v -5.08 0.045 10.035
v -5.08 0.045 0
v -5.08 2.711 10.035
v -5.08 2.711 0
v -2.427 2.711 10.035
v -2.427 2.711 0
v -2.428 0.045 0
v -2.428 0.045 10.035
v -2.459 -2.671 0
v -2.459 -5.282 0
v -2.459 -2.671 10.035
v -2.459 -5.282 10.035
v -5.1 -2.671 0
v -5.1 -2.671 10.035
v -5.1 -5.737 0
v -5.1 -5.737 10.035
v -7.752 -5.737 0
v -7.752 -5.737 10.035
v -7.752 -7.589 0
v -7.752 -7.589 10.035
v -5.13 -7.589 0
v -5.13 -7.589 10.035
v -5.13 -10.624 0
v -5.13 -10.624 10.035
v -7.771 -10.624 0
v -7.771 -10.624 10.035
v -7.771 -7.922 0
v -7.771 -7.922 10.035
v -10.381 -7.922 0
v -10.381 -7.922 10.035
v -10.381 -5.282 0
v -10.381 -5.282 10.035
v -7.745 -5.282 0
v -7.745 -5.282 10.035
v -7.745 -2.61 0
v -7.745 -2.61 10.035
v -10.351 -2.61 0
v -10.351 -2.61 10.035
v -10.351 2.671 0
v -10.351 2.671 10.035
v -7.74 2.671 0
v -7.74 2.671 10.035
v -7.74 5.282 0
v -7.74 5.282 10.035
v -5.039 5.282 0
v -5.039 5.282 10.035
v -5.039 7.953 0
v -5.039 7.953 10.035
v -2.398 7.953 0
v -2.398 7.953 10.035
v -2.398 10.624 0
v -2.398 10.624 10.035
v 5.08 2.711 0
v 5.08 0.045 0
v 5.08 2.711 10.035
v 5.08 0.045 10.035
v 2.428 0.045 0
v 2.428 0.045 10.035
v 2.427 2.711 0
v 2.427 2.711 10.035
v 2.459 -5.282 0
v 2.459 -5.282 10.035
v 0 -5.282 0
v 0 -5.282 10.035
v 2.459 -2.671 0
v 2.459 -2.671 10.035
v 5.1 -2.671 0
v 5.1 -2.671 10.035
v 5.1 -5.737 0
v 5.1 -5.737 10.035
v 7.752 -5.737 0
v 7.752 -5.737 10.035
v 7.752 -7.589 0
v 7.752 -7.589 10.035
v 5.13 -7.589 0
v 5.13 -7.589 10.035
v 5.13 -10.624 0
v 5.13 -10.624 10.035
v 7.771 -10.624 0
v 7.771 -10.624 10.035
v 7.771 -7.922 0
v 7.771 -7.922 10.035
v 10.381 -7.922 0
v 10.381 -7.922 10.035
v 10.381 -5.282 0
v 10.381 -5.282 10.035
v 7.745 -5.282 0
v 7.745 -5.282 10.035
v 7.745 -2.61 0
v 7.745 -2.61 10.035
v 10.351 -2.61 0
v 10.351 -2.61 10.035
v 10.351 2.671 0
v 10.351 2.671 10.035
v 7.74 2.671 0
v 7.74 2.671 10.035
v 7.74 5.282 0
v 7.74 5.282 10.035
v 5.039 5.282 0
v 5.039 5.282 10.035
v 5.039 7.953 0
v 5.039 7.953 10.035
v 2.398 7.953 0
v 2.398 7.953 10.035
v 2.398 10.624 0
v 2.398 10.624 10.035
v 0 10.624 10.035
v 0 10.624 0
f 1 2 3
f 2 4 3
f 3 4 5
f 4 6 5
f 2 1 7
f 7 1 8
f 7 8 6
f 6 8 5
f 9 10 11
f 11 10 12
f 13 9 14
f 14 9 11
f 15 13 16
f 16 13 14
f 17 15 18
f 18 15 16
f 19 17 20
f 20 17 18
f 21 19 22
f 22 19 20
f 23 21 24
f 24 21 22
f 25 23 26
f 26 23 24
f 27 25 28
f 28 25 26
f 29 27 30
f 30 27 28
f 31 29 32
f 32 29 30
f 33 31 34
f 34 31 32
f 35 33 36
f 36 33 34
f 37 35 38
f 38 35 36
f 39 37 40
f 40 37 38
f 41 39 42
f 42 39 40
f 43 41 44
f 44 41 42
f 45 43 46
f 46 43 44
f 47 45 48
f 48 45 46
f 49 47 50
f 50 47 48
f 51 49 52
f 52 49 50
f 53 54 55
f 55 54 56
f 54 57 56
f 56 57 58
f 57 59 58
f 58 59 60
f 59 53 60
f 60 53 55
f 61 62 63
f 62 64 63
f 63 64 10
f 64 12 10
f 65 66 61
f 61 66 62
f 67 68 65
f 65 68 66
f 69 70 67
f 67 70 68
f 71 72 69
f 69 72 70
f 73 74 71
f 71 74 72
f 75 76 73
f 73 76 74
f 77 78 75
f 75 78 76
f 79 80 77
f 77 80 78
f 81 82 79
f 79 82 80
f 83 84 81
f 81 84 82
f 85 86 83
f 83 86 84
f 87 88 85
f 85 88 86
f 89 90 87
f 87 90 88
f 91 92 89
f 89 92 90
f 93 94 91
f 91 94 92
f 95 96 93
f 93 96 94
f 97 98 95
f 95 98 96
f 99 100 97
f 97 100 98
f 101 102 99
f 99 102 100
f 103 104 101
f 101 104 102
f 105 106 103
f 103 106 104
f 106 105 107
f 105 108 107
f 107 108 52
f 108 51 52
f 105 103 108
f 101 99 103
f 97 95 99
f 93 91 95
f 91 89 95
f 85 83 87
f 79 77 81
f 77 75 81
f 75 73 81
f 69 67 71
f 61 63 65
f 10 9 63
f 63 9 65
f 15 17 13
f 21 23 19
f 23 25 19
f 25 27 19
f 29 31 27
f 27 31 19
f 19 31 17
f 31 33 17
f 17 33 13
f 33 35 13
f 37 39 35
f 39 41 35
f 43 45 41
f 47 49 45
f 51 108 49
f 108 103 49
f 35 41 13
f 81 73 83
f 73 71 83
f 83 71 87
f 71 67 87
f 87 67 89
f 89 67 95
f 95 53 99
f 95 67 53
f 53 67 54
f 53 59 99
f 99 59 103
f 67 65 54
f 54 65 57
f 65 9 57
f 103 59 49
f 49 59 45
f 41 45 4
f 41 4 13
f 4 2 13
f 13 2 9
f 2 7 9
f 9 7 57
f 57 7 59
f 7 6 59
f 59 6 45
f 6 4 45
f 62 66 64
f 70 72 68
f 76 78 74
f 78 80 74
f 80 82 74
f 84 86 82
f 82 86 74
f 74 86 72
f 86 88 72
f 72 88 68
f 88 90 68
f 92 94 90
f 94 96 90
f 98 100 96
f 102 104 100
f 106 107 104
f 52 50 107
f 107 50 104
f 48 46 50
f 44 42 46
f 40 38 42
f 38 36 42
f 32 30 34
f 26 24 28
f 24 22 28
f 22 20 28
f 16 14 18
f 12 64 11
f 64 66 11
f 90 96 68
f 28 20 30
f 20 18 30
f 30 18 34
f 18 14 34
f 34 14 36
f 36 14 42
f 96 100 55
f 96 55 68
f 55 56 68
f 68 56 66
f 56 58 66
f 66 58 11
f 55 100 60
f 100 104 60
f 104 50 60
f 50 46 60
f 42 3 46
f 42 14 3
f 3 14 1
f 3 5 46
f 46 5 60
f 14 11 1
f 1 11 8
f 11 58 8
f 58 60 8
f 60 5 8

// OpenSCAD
module invaders_v2_1() 
{
	polyhedron(
		points=[
			[-5.08036, 0.0450995, 10.03545],
			[-5.08036, 0.0450995, 1.049042e-05],
			[-5.08036, 2.710617, 10.03545],
			[-5.08036, 0.0450995, 1.049042e-05],
			[-5.08036, 2.710617, 1.049042e-05],
			[-5.08036, 2.710617, 10.03545],
			[-5.08036, 2.710617, 10.03545],
			[-5.08036, 2.710617, 1.049042e-05],
			[-2.426634, 2.710617, 10.03545],
			[-5.08036, 2.710617, 1.049042e-05],
			[-2.426634, 2.710617, 0.0],
			[-2.426634, 2.710617, 10.03545],
			[-5.08036, 0.0450995, 1.049042e-05],
			[-5.08036, 0.0450995, 10.03545],
			[-2.427733, 0.0450995, 1.049042e-05],
			[-2.427733, 0.0450995, 1.049042e-05],
			[-5.08036, 0.0450995, 10.03545],
			[-2.427733, 0.0450995, 10.03545],
			[-2.427733, 0.0450995, 1.049042e-05],
			[-2.427733, 0.0450995, 10.03545],
			[-2.426634, 2.710617, 0.0],
			[-2.426634, 2.710617, 0.0],
			[-2.427733, 0.0450995, 10.03545],
			[-2.426634, 2.710617, 10.03545],
			[-2.458702, -2.67118, 5.245209e-06],
			[-2.458702, -5.281656, 5.245209e-06],
			[-2.458702, -2.67118, 10.03545],
			[-2.458702, -2.67118, 10.03545],
			[-2.458702, -5.281656, 5.245209e-06],
			[-2.458702, -5.281656, 10.03545],
			[-5.099529, -2.67118, 5.245209e-06],
			[-2.458702, -2.67118, 5.245209e-06],
			[-5.099529, -2.67118, 10.03545],
			[-5.099529, -2.67118, 10.03545],
			[-2.458702, -2.67118, 5.245209e-06],
			[-2.458702, -2.67118, 10.03545],
			[-5.099529, -5.736979, 5.245209e-06],
			[-5.099529, -2.67118, 5.245209e-06],
			[-5.099529, -5.736979, 10.03545],
			[-5.099529, -5.736979, 10.03545],
			[-5.099529, -2.67118, 5.245209e-06],
			[-5.099529, -2.67118, 10.03545],
			[-7.75174, -5.736971, 5.245209e-06],
			[-5.099529, -5.736979, 5.245209e-06],
			[-7.75174, -5.736971, 10.03545],
			[-7.75174, -5.736971, 10.03545],
			[-5.099529, -5.736979, 5.245209e-06],
			[-5.099529, -5.736979, 10.03545],
			[-7.75174, -7.588589, 5.245209e-06],
			[-7.75174, -5.736971, 5.245209e-06],
			[-7.75174, -7.588589, 10.03545],
			[-7.75174, -7.588589, 10.03545],
			[-7.75174, -5.736971, 5.245209e-06],
			[-7.75174, -5.736971, 10.03545],
			[-5.129888, -7.588597, 5.245209e-06],
			[-7.75174, -7.588589, 5.245209e-06],
			[-5.129888, -7.588597, 10.03545],
			[-5.129888, -7.588597, 10.03545],
			[-7.75174, -7.588589, 5.245209e-06],
			[-7.75174, -7.588589, 10.03545],
			[-5.129888, -10.62404, 5.245209e-06],
			[-5.129888, -7.588597, 5.245209e-06],
			[-5.129888, -10.62404, 10.03545],
			[-5.129888, -10.62404, 10.03545],
			[-5.129888, -7.588597, 5.245209e-06],
			[-5.129888, -7.588597, 10.03545],
			[-7.770716, -10.62403, 5.245209e-06],
			[-5.129888, -10.62404, 5.245209e-06],
			[-7.770716, -10.62403, 10.03545],
			[-7.770716, -10.62403, 10.03545],
			[-5.129888, -10.62404, 5.245209e-06],
			[-5.129888, -10.62404, 10.03545],
			[-7.770716, -7.922484, 5.245209e-06],
			[-7.770716, -10.62403, 5.245209e-06],
			[-7.770716, -7.922484, 10.03545],
			[-7.770716, -7.922484, 10.03545],
			[-7.770716, -10.62403, 5.245209e-06],
			[-7.770716, -10.62403, 10.03545],
			[-10.38119, -7.922484, 5.245209e-06],
			[-7.770716, -7.922484, 5.245209e-06],
			[-10.38119, -7.922484, 10.03545],
			[-10.38119, -7.922484, 10.03545],
			[-7.770716, -7.922484, 5.245209e-06],
			[-7.770716, -7.922484, 10.03545],
			[-10.38119, -5.281649, 5.245209e-06],
			[-10.38119, -7.922484, 5.245209e-06],
			[-10.38119, -5.281649, 10.03545],
			[-10.38119, -5.281649, 10.03545],
			[-10.38119, -7.922484, 5.245209e-06],
			[-10.38119, -7.922484, 10.03545],
			[-7.745432, -5.281649, 5.245209e-06],
			[-10.38119, -5.281649, 5.245209e-06],
			[-7.745432, -5.281649, 10.03545],
			[-7.745432, -5.281649, 10.03545],
			[-10.38119, -5.281649, 5.245209e-06],
			[-10.38119, -5.281649, 10.03545],
			[-7.745432, -2.610469, 5.245209e-06],
			[-7.745432, -5.281649, 5.245209e-06],
			[-7.745432, -2.610469, 10.03545],
			[-7.745432, -2.610469, 10.03545],
			[-7.745432, -5.281649, 5.245209e-06],
			[-7.745432, -5.281649, 10.03545],
			[-10.35084, -2.610469, 5.245209e-06],
			[-7.745432, -2.610469, 5.245209e-06],
			[-10.35084, -2.610469, 10.03545],
			[-10.35084, -2.610469, 10.03545],
			[-7.745432, -2.610469, 5.245209e-06],
			[-7.745432, -2.610469, 10.03545],
			[-10.35084, 2.671194, 5.245209e-06],
			[-10.35084, -2.610469, 5.245209e-06],
			[-10.35084, 2.671194, 10.03545],
			[-10.35084, 2.671194, 10.03545],
			[-10.35084, -2.610469, 5.245209e-06],
			[-10.35084, -2.610469, 10.03545],
			[-7.740365, 2.671194, 5.245209e-06],
			[-10.35084, 2.671194, 5.245209e-06],
			[-7.740365, 2.671194, 10.03545],
			[-7.740365, 2.671194, 10.03545],
			[-10.35084, 2.671194, 5.245209e-06],
			[-10.35084, 2.671194, 10.03545],
			[-7.740365, 5.281678, 5.245209e-06],
			[-7.740365, 2.671194, 5.245209e-06],
			[-7.740365, 5.281678, 10.03545],
			[-7.740365, 5.281678, 10.03545],
			[-7.740365, 2.671194, 5.245209e-06],
			[-7.740365, 2.671194, 10.03545],
			[-5.038819, 5.28167, 5.245209e-06],
			[-7.740365, 5.281678, 5.245209e-06],
			[-5.038819, 5.28167, 10.03545],
			[-5.038819, 5.28167, 10.03545],
			[-7.740365, 5.281678, 5.245209e-06],
			[-7.740365, 5.281678, 10.03545],
			[-5.038819, 7.952849, 5.245209e-06],
			[-5.038819, 5.28167, 5.245209e-06],
			[-5.038819, 7.952849, 10.03545],
			[-5.038819, 7.952849, 10.03545],
			[-5.038819, 5.28167, 5.245209e-06],
			[-5.038819, 5.28167, 10.03545],
			[-2.397991, 7.952849, 5.245209e-06],
			[-5.038819, 7.952849, 5.245209e-06],
			[-2.397991, 7.952849, 10.03545],
			[-2.397991, 7.952849, 10.03545],
			[-5.038819, 7.952849, 5.245209e-06],
			[-5.038819, 7.952849, 10.03545],
			[-2.397991, 10.62404, 5.245209e-06],
			[-2.397991, 7.952849, 5.245209e-06],
			[-2.397991, 10.62404, 10.03545],
			[-2.397991, 10.62404, 10.03545],
			[-2.397991, 7.952849, 5.245209e-06],
			[-2.397991, 7.952849, 10.03545],
			[5.080359, 2.710617, 1.573563e-05],
			[5.080359, 0.0450995, 1.573563e-05],
			[5.080359, 2.710617, 10.03546],
			[5.080359, 2.710617, 10.03546],
			[5.080359, 0.0450995, 1.573563e-05],
			[5.080359, 0.0450995, 10.03546],
			[5.080359, 0.0450995, 1.573563e-05],
			[2.427733, 0.0450995, 1.049042e-05],
			[5.080359, 0.0450995, 10.03546],
			[5.080359, 0.0450995, 10.03546],
			[2.427733, 0.0450995, 1.049042e-05],
			[2.427733, 0.0450995, 10.03545],
			[2.427733, 0.0450995, 1.049042e-05],
			[2.426633, 2.710617, 0.0],
			[2.427733, 0.0450995, 10.03545],
			[2.427733, 0.0450995, 10.03545],
			[2.426633, 2.710617, 0.0],
			[2.426633, 2.710617, 10.03545],
			[2.426633, 2.710617, 0.0],
			[5.080359, 2.710617, 1.573563e-05],
			[2.426633, 2.710617, 10.03545],
			[2.426633, 2.710617, 10.03545],
			[5.080359, 2.710617, 1.573563e-05],
			[5.080359, 2.710617, 10.03546],
			[2.458701, -5.281656, 5.245209e-06],
			[2.458701, -5.281656, 10.03545],
			[3.308058e-06, -5.281656, 5.245209e-06],
			[2.458701, -5.281656, 10.03545],
			[3.308058e-06, -5.281656, 10.03545],
			[3.308058e-06, -5.281656, 5.245209e-06],
			[3.308058e-06, -5.281656, 5.245209e-06],
			[3.308058e-06, -5.281656, 10.03545],
			[-2.458702, -5.281656, 5.245209e-06],
			[3.308058e-06, -5.281656, 10.03545],
			[-2.458702, -5.281656, 10.03545],
			[-2.458702, -5.281656, 5.245209e-06],
			[2.458701, -2.67118, 5.245209e-06],
			[2.458701, -2.67118, 10.03545],
			[2.458701, -5.281656, 5.245209e-06],
			[2.458701, -5.281656, 5.245209e-06],
			[2.458701, -2.67118, 10.03545],
			[2.458701, -5.281656, 10.03545],
			[5.099529, -2.67118, 1.049042e-05],
			[5.099529, -2.67118, 10.03546],
			[2.458701, -2.67118, 5.245209e-06],
			[2.458701, -2.67118, 5.245209e-06],
			[5.099529, -2.67118, 10.03546],
			[2.458701, -2.67118, 10.03545],
			[5.099529, -5.736979, 1.049042e-05],
			[5.099529, -5.736979, 10.03546],
			[5.099529, -2.67118, 1.049042e-05],
			[5.099529, -2.67118, 1.049042e-05],
			[5.099529, -5.736979, 10.03546],
			[5.099529, -2.67118, 10.03546],
			[7.751732, -5.736979, 1.049042e-05],
			[7.751732, -5.736979, 10.03546],
			[5.099529, -5.736979, 1.049042e-05],
			[5.099529, -5.736979, 1.049042e-05],
			[7.751732, -5.736979, 10.03546],
			[5.099529, -5.736979, 10.03546],
			[7.751732, -7.588597, 1.049042e-05],
			[7.751732, -7.588597, 10.03546],
			[7.751732, -5.736979, 1.049042e-05],
			[7.751732, -5.736979, 1.049042e-05],
			[7.751732, -7.588597, 10.03546],
			[7.751732, -5.736979, 10.03546],
			[5.129888, -7.588597, 1.049042e-05],
			[5.129888, -7.588597, 10.03546],
			[7.751732, -7.588597, 1.049042e-05],
			[7.751732, -7.588597, 1.049042e-05],
			[5.129888, -7.588597, 10.03546],
			[7.751732, -7.588597, 10.03546],
			[5.129888, -10.62404, 1.049042e-05],
			[5.129888, -10.62404, 10.03546],
			[5.129888, -7.588597, 1.049042e-05],
			[5.129888, -7.588597, 1.049042e-05],
			[5.129888, -10.62404, 10.03546],
			[5.129888, -7.588597, 10.03546],
			[7.770708, -10.62404, 1.049042e-05],
			[7.770708, -10.62404, 10.03546],
			[5.129888, -10.62404, 1.049042e-05],
			[5.129888, -10.62404, 1.049042e-05],
			[7.770708, -10.62404, 10.03546],
			[5.129888, -10.62404, 10.03546],
			[7.770708, -7.922492, 1.049042e-05],
			[7.770708, -7.922492, 10.03546],
			[7.770708, -10.62404, 1.049042e-05],
			[7.770708, -10.62404, 1.049042e-05],
			[7.770708, -7.922492, 10.03546],
			[7.770708, -10.62404, 10.03546],
			[10.38119, -7.922492, 1.049042e-05],
			[10.38119, -7.922492, 10.03546],
			[7.770708, -7.922492, 1.049042e-05],
			[7.770708, -7.922492, 1.049042e-05],
			[10.38119, -7.922492, 10.03546],
			[7.770708, -7.922492, 10.03546],
			[10.38119, -5.281656, 1.049042e-05],
			[10.38119, -5.281656, 10.03546],
			[10.38119, -7.922492, 1.049042e-05],
			[10.38119, -7.922492, 1.049042e-05],
			[10.38119, -5.281656, 10.03546],
			[10.38119, -7.922492, 10.03546],
			[7.745431, -5.281656, 1.049042e-05],
			[7.745431, -5.281656, 10.03546],
			[10.38119, -5.281656, 1.049042e-05],
			[10.38119, -5.281656, 1.049042e-05],
			[7.745431, -5.281656, 10.03546],
			[10.38119, -5.281656, 10.03546],
			[7.745431, -2.610477, 1.049042e-05],
			[7.745431, -2.610477, 10.03546],
			[7.745431, -5.281656, 1.049042e-05],
			[7.745431, -5.281656, 1.049042e-05],
			[7.745431, -2.610477, 10.03546],
			[7.745431, -5.281656, 10.03546],
			[10.35083, -2.610477, 1.049042e-05],
			[10.35083, -2.610477, 10.03546],
			[7.745431, -2.610477, 1.049042e-05],
			[7.745431, -2.610477, 1.049042e-05],
			[10.35083, -2.610477, 10.03546],
			[7.745431, -2.610477, 10.03546],
			[10.35083, 2.671186, 1.049042e-05],
			[10.35083, 2.671186, 10.03546],
			[10.35083, -2.610477, 1.049042e-05],
			[10.35083, -2.610477, 1.049042e-05],
			[10.35083, 2.671186, 10.03546],
			[10.35083, -2.610477, 10.03546],
			[7.740364, 2.671186, 1.049042e-05],
			[7.740364, 2.671186, 10.03546],
			[10.35083, 2.671186, 1.049042e-05],
			[10.35083, 2.671186, 1.049042e-05],
			[7.740364, 2.671186, 10.03546],
			[10.35083, 2.671186, 10.03546],
			[7.740364, 5.28167, 1.049042e-05],
			[7.740364, 5.28167, 10.03546],
			[7.740364, 2.671186, 1.049042e-05],
			[7.740364, 2.671186, 1.049042e-05],
			[7.740364, 5.28167, 10.03546],
			[7.740364, 2.671186, 10.03546],
			[5.038818, 5.28167, 1.049042e-05],
			[5.038818, 5.28167, 10.03546],
			[7.740364, 5.28167, 1.049042e-05],
			[7.740364, 5.28167, 1.049042e-05],
			[5.038818, 5.28167, 10.03546],
			[7.740364, 5.28167, 10.03546],
			[5.038818, 7.952849, 1.049042e-05],
			[5.038818, 7.952849, 10.03546],
			[5.038818, 5.28167, 1.049042e-05],
			[5.038818, 5.28167, 1.049042e-05],
			[5.038818, 7.952849, 10.03546],
			[5.038818, 5.28167, 10.03546],
			[2.397991, 7.952849, 5.245209e-06],
			[2.397991, 7.952849, 10.03545],
			[5.038818, 7.952849, 1.049042e-05],
			[5.038818, 7.952849, 1.049042e-05],
			[2.397991, 7.952849, 10.03545],
			[5.038818, 7.952849, 10.03546],
			[2.397991, 10.62404, 5.245209e-06],
			[2.397991, 10.62404, 10.03545],
			[2.397991, 7.952849, 5.245209e-06],
			[2.397991, 7.952849, 5.245209e-06],
			[2.397991, 10.62404, 10.03545],
			[2.397991, 7.952849, 10.03545],
			[2.397991, 10.62404, 10.03545],
			[2.397991, 10.62404, 5.245209e-06],
			[3.308058e-06, 10.62404, 10.03545],
			[2.397991, 10.62404, 5.245209e-06],
			[3.308058e-06, 10.62404, 5.245209e-06],
			[3.308058e-06, 10.62404, 10.03545],
			[3.308058e-06, 10.62404, 10.03545],
			[3.308058e-06, 10.62404, 5.245209e-06],
			[-2.397991, 10.62404, 10.03545],
			[3.308058e-06, 10.62404, 5.245209e-06],
			[-2.397991, 10.62404, 5.245209e-06],
			[-2.397991, 10.62404, 10.03545],
			[2.397991, 10.62404, 5.245209e-06],
			[2.397991, 7.952849, 5.245209e-06],
			[3.308058e-06, 10.62404, 5.245209e-06],
			[5.038818, 7.952849, 1.049042e-05],
			[5.038818, 5.28167, 1.049042e-05],
			[2.397991, 7.952849, 5.245209e-06],
			[7.740364, 5.28167, 1.049042e-05],
			[7.740364, 2.671186, 1.049042e-05],
			[5.038818, 5.28167, 1.049042e-05],
			[10.35083, 2.671186, 1.049042e-05],
			[10.35083, -2.610477, 1.049042e-05],
			[7.740364, 2.671186, 1.049042e-05],
			[10.35083, -2.610477, 1.049042e-05],
			[7.745431, -2.610477, 1.049042e-05],
			[7.740364, 2.671186, 1.049042e-05],
			[10.38119, -5.281656, 1.049042e-05],
			[10.38119, -7.922492, 1.049042e-05],
			[7.745431, -5.281656, 1.049042e-05],
			[7.770708, -10.62404, 1.049042e-05],
			[5.129888, -10.62404, 1.049042e-05],
			[7.770708, -7.922492, 1.049042e-05],
			[5.129888, -10.62404, 1.049042e-05],
			[5.129888, -7.588597, 1.049042e-05],
			[7.770708, -7.922492, 1.049042e-05],
			[5.129888, -7.588597, 1.049042e-05],
			[7.751732, -7.588597, 1.049042e-05],
			[7.770708, -7.922492, 1.049042e-05],
			[5.099529, -5.736979, 1.049042e-05],
			[5.099529, -2.67118, 1.049042e-05],
			[7.751732, -5.736979, 1.049042e-05],
			[2.458701, -5.281656, 5.245209e-06],
			[3.308058e-06, -5.281656, 5.245209e-06],
			[2.458701, -2.67118, 5.245209e-06],
			[-2.458702, -5.281656, 5.245209e-06],
			[-2.458702, -2.67118, 5.245209e-06],
			[3.308058e-06, -5.281656, 5.245209e-06],
			[3.308058e-06, -5.281656, 5.245209e-06],
			[-2.458702, -2.67118, 5.245209e-06],
			[2.458701, -2.67118, 5.245209e-06],
			[-5.099529, -5.736979, 5.245209e-06],
			[-7.75174, -5.736971, 5.245209e-06],
			[-5.099529, -2.67118, 5.245209e-06],
			[-5.129888, -7.588597, 5.245209e-06],
			[-5.129888, -10.62404, 5.245209e-06],
			[-7.75174, -7.588589, 5.245209e-06],
			[-5.129888, -10.62404, 5.245209e-06],
			[-7.770716, -10.62403, 5.245209e-06],
			[-7.75174, -7.588589, 5.245209e-06],
			[-7.770716, -10.62403, 5.245209e-06],
			[-7.770716, -7.922484, 5.245209e-06],
			[-7.75174, -7.588589, 5.245209e-06],
			[-10.38119, -7.922484, 5.245209e-06],
			[-10.38119, -5.281649, 5.245209e-06],
			[-7.770716, -7.922484, 5.245209e-06],
			[-7.770716, -7.922484, 5.245209e-06],
			[-10.38119, -5.281649, 5.245209e-06],
			[-7.75174, -7.588589, 5.245209e-06],
			[-7.75174, -7.588589, 5.245209e-06],
			[-10.38119, -5.281649, 5.245209e-06],
			[-7.75174, -5.736971, 5.245209e-06],
			[-10.38119, -5.281649, 5.245209e-06],
			[-7.745432, -5.281649, 5.245209e-06],
			[-7.75174, -5.736971, 5.245209e-06],
			[-7.75174, -5.736971, 5.245209e-06],
			[-7.745432, -5.281649, 5.245209e-06],
			[-5.099529, -2.67118, 5.245209e-06],
			[-7.745432, -5.281649, 5.245209e-06],
			[-7.745432, -2.610469, 5.245209e-06],
			[-5.099529, -2.67118, 5.245209e-06],
			[-10.35084, -2.610469, 5.245209e-06],
			[-10.35084, 2.671194, 5.245209e-06],
			[-7.745432, -2.610469, 5.245209e-06],
			[-10.35084, 2.671194, 5.245209e-06],
			[-7.740365, 2.671194, 5.245209e-06],
			[-7.745432, -2.610469, 5.245209e-06],
			[-7.740365, 5.281678, 5.245209e-06],
			[-5.038819, 5.28167, 5.245209e-06],
			[-7.740365, 2.671194, 5.245209e-06],
			[-5.038819, 7.952849, 5.245209e-06],
			[-2.397991, 7.952849, 5.245209e-06],
			[-5.038819, 5.28167, 5.245209e-06],
			[-2.397991, 10.62404, 5.245209e-06],
			[3.308058e-06, 10.62404, 5.245209e-06],
			[-2.397991, 7.952849, 5.245209e-06],
			[3.308058e-06, 10.62404, 5.245209e-06],
			[2.397991, 7.952849, 5.245209e-06],
			[-2.397991, 7.952849, 5.245209e-06],
			[-7.745432, -2.610469, 5.245209e-06],
			[-7.740365, 2.671194, 5.245209e-06],
			[-5.099529, -2.67118, 5.245209e-06],
			[7.770708, -7.922492, 1.049042e-05],
			[7.751732, -7.588597, 1.049042e-05],
			[10.38119, -7.922492, 1.049042e-05],
			[7.751732, -7.588597, 1.049042e-05],
			[7.751732, -5.736979, 1.049042e-05],
			[10.38119, -7.922492, 1.049042e-05],
			[10.38119, -7.922492, 1.049042e-05],
			[7.751732, -5.736979, 1.049042e-05],
			[7.745431, -5.281656, 1.049042e-05],
			[7.751732, -5.736979, 1.049042e-05],
			[5.099529, -2.67118, 1.049042e-05],
			[7.745431, -5.281656, 1.049042e-05],
			[7.745431, -5.281656, 1.049042e-05],
			[5.099529, -2.67118, 1.049042e-05],
			[7.745431, -2.610477, 1.049042e-05],
			[7.745431, -2.610477, 1.049042e-05],
			[5.099529, -2.67118, 1.049042e-05],
			[7.740364, 2.671186, 1.049042e-05],
			[7.740364, 2.671186, 1.049042e-05],
			[5.080359, 2.710617, 1.573563e-05],
			[5.038818, 5.28167, 1.049042e-05],
			[7.740364, 2.671186, 1.049042e-05],
			[5.099529, -2.67118, 1.049042e-05],
			[5.080359, 2.710617, 1.573563e-05],
			[5.080359, 2.710617, 1.573563e-05],
			[5.099529, -2.67118, 1.049042e-05],
			[5.080359, 0.0450995, 1.573563e-05],
			[5.080359, 2.710617, 1.573563e-05],
			[2.426633, 2.710617, 0.0],
			[5.038818, 5.28167, 1.049042e-05],
			[5.038818, 5.28167, 1.049042e-05],
			[2.426633, 2.710617, 0.0],
			[2.397991, 7.952849, 5.245209e-06],
			[5.099529, -2.67118, 1.049042e-05],
			[2.458701, -2.67118, 5.245209e-06],
			[5.080359, 0.0450995, 1.573563e-05],
			[5.080359, 0.0450995, 1.573563e-05],
			[2.458701, -2.67118, 5.245209e-06],
			[2.427733, 0.0450995, 1.049042e-05],
			[2.458701, -2.67118, 5.245209e-06],
			[-2.458702, -2.67118, 5.245209e-06],
			[2.427733, 0.0450995, 1.049042e-05],
			[2.397991, 7.952849, 5.245209e-06],
			[2.426633, 2.710617, 0.0],
			[-2.397991, 7.952849, 5.245209e-06],
			[-2.397991, 7.952849, 5.245209e-06],
			[2.426633, 2.710617, 0.0],
			[-5.038819, 5.28167, 5.245209e-06],
			[-7.740365, 2.671194, 5.245209e-06],
			[-5.038819, 5.28167, 5.245209e-06],
			[-5.08036, 2.710617, 1.049042e-05],
			[-7.740365, 2.671194, 5.245209e-06],
			[-5.08036, 2.710617, 1.049042e-05],
			[-5.099529, -2.67118, 5.245209e-06],
			[-5.08036, 2.710617, 1.049042e-05],
			[-5.08036, 0.0450995, 1.049042e-05],
			[-5.099529, -2.67118, 5.245209e-06],
			[-5.099529, -2.67118, 5.245209e-06],
			[-5.08036, 0.0450995, 1.049042e-05],
			[-2.458702, -2.67118, 5.245209e-06],
			[-5.08036, 0.0450995, 1.049042e-05],
			[-2.427733, 0.0450995, 1.049042e-05],
			[-2.458702, -2.67118, 5.245209e-06],
			[-2.458702, -2.67118, 5.245209e-06],
			[-2.427733, 0.0450995, 1.049042e-05],
			[2.427733, 0.0450995, 1.049042e-05],
			[2.427733, 0.0450995, 1.049042e-05],
			[-2.427733, 0.0450995, 1.049042e-05],
			[2.426633, 2.710617, 0.0],
			[-2.427733, 0.0450995, 1.049042e-05],
			[-2.426634, 2.710617, 0.0],
			[2.426633, 2.710617, 0.0],
			[2.426633, 2.710617, 0.0],
			[-2.426634, 2.710617, 0.0],
			[-5.038819, 5.28167, 5.245209e-06],
			[-2.426634, 2.710617, 0.0],
			[-5.08036, 2.710617, 1.049042e-05],
			[-5.038819, 5.28167, 5.245209e-06],
			[2.458701, -5.281656, 10.03545],
			[2.458701, -2.67118, 10.03545],
			[3.308058e-06, -5.281656, 10.03545],
			[5.099529, -5.736979, 10.03546],
			[7.751732, -5.736979, 10.03546],
			[5.099529, -2.67118, 10.03546],
			[5.129888, -7.588597, 10.03546],
			[5.129888, -10.62404, 10.03546],
			[7.751732, -7.588597, 10.03546],
			[5.129888, -10.62404, 10.03546],
			[7.770708, -10.62404, 10.03546],
			[7.751732, -7.588597, 10.03546],
			[7.770708, -10.62404, 10.03546],
			[7.770708, -7.922492, 10.03546],
			[7.751732, -7.588597, 10.03546],
			[10.38119, -7.922492, 10.03546],
			[10.38119, -5.281656, 10.03546],
			[7.770708, -7.922492, 10.03546],
			[7.770708, -7.922492, 10.03546],
			[10.38119, -5.281656, 10.03546],
			[7.751732, -7.588597, 10.03546],
			[7.751732, -7.588597, 10.03546],
			[10.38119, -5.281656, 10.03546],
			[7.751732, -5.736979, 10.03546],
			[10.38119, -5.281656, 10.03546],
			[7.745431, -5.281656, 10.03546],
			[7.751732, -5.736979, 10.03546],
			[7.751732, -5.736979, 10.03546],
			[7.745431, -5.281656, 10.03546],
			[5.099529, -2.67118, 10.03546],
			[7.745431, -5.281656, 10.03546],
			[7.745431, -2.610477, 10.03546],
			[5.099529, -2.67118, 10.03546],
			[10.35083, -2.610477, 10.03546],
			[10.35083, 2.671186, 10.03546],
			[7.745431, -2.610477, 10.03546],
			[10.35083, 2.671186, 10.03546],
			[7.740364, 2.671186, 10.03546],
			[7.745431, -2.610477, 10.03546],
			[7.740364, 5.28167, 10.03546],
			[5.038818, 5.28167, 10.03546],
			[7.740364, 2.671186, 10.03546],
			[5.038818, 7.952849, 10.03546],
			[2.397991, 7.952849, 10.03545],
			[5.038818, 5.28167, 10.03546],
			[2.397991, 10.62404, 10.03545],
			[3.308058e-06, 10.62404, 10.03545],
			[2.397991, 7.952849, 10.03545],
			[-2.397991, 10.62404, 10.03545],
			[-2.397991, 7.952849, 10.03545],
			[3.308058e-06, 10.62404, 10.03545],
			[3.308058e-06, 10.62404, 10.03545],
			[-2.397991, 7.952849, 10.03545],
			[2.397991, 7.952849, 10.03545],
			[-5.038819, 7.952849, 10.03545],
			[-5.038819, 5.28167, 10.03545],
			[-2.397991, 7.952849, 10.03545],
			[-7.740365, 5.281678, 10.03545],
			[-7.740365, 2.671194, 10.03545],
			[-5.038819, 5.28167, 10.03545],
			[-10.35084, 2.671194, 10.03545],
			[-10.35084, -2.610469, 10.03545],
			[-7.740365, 2.671194, 10.03545],
			[-10.35084, -2.610469, 10.03545],
			[-7.745432, -2.610469, 10.03545],
			[-7.740365, 2.671194, 10.03545],
			[-10.38119, -5.281649, 10.03545],
			[-10.38119, -7.922484, 10.03545],
			[-7.745432, -5.281649, 10.03545],
			[-7.770716, -10.62403, 10.03545],
			[-5.129888, -10.62404, 10.03545],
			[-7.770716, -7.922484, 10.03545],
			[-5.129888, -10.62404, 10.03545],
			[-5.129888, -7.588597, 10.03545],
			[-7.770716, -7.922484, 10.03545],
			[-5.129888, -7.588597, 10.03545],
			[-7.75174, -7.588589, 10.03545],
			[-7.770716, -7.922484, 10.03545],
			[-5.099529, -5.736979, 10.03545],
			[-5.099529, -2.67118, 10.03545],
			[-7.75174, -5.736971, 10.03545],
			[-2.458702, -5.281656, 10.03545],
			[3.308058e-06, -5.281656, 10.03545],
			[-2.458702, -2.67118, 10.03545],
			[3.308058e-06, -5.281656, 10.03545],
			[2.458701, -2.67118, 10.03545],
			[-2.458702, -2.67118, 10.03545],
			[7.745431, -2.610477, 10.03546],
			[7.740364, 2.671186, 10.03546],
			[5.099529, -2.67118, 10.03546],
			[-7.770716, -7.922484, 10.03545],
			[-7.75174, -7.588589, 10.03545],
			[-10.38119, -7.922484, 10.03545],
			[-7.75174, -7.588589, 10.03545],
			[-7.75174, -5.736971, 10.03545],
			[-10.38119, -7.922484, 10.03545],
			[-10.38119, -7.922484, 10.03545],
			[-7.75174, -5.736971, 10.03545],
			[-7.745432, -5.281649, 10.03545],
			[-7.75174, -5.736971, 10.03545],
			[-5.099529, -2.67118, 10.03545],
			[-7.745432, -5.281649, 10.03545],
			[-7.745432, -5.281649, 10.03545],
			[-5.099529, -2.67118, 10.03545],
			[-7.745432, -2.610469, 10.03545],
			[-7.745432, -2.610469, 10.03545],
			[-5.099529, -2.67118, 10.03545],
			[-7.740365, 2.671194, 10.03545],
			[7.740364, 2.671186, 10.03546],
			[5.038818, 5.28167, 10.03546],
			[5.080359, 2.710617, 10.03546],
			[7.740364, 2.671186, 10.03546],
			[5.080359, 2.710617, 10.03546],
			[5.099529, -2.67118, 10.03546],
			[5.080359, 2.710617, 10.03546],
			[5.080359, 0.0450995, 10.03546],
			[5.099529, -2.67118, 10.03546],
			[5.099529, -2.67118, 10.03546],
			[5.080359, 0.0450995, 10.03546],
			[2.458701, -2.67118, 10.03545],
			[5.080359, 0.0450995, 10.03546],
			[2.427733, 0.0450995, 10.03545],
			[2.458701, -2.67118, 10.03545],
			[2.458701, -2.67118, 10.03545],
			[2.427733, 0.0450995, 10.03545],
			[-2.458702, -2.67118, 10.03545],
			[5.080359, 2.710617, 10.03546],
			[5.038818, 5.28167, 10.03546],
			[2.426633, 2.710617, 10.03545],
			[5.038818, 5.28167, 10.03546],
			[2.397991, 7.952849, 10.03545],
			[2.426633, 2.710617, 10.03545],
			[2.397991, 7.952849, 10.03545],
			[-2.397991, 7.952849, 10.03545],
			[2.426633, 2.710617, 10.03545],
			[-2.397991, 7.952849, 10.03545],
			[-5.038819, 5.28167, 10.03545],
			[2.426633, 2.710617, 10.03545],
			[-7.740365, 2.671194, 10.03545],
			[-5.08036, 2.710617, 10.03545],
			[-5.038819, 5.28167, 10.03545],
			[-7.740365, 2.671194, 10.03545],
			[-5.099529, -2.67118, 10.03545],
			[-5.08036, 2.710617, 10.03545],
			[-5.08036, 2.710617, 10.03545],
			[-5.099529, -2.67118, 10.03545],
			[-5.08036, 0.0450995, 10.03545],
			[-5.08036, 2.710617, 10.03545],
			[-2.426634, 2.710617, 10.03545],
			[-5.038819, 5.28167, 10.03545],
			[-5.038819, 5.28167, 10.03545],
			[-2.426634, 2.710617, 10.03545],
			[2.426633, 2.710617, 10.03545],
			[-5.099529, -2.67118, 10.03545],
			[-2.458702, -2.67118, 10.03545],
			[-5.08036, 0.0450995, 10.03545],
			[-5.08036, 0.0450995, 10.03545],
			[-2.458702, -2.67118, 10.03545],
			[-2.427733, 0.0450995, 10.03545],
			[-2.458702, -2.67118, 10.03545],
			[2.427733, 0.0450995, 10.03545],
			[-2.427733, 0.0450995, 10.03545],
			[2.427733, 0.0450995, 10.03545],
			[2.426633, 2.710617, 10.03545],
			[-2.427733, 0.0450995, 10.03545],
			[2.426633, 2.710617, 10.03545],
			[-2.426634, 2.710617, 10.03545],
			[-2.427733, 0.0450995, 10.03545]
		],
		faces=[
			[0, 1, 2],
			[3, 4, 5],
			[6, 7, 8],
			[9, 10, 11],
			[12, 13, 14],
			[15, 16, 17],
			[18, 19, 20],
			[21, 22, 23],
			[24, 25, 26],
			[27, 28, 29],
			[30, 31, 32],
			[33, 34, 35],
			[36, 37, 38],
			[39, 40, 41],
			[42, 43, 44],
			[45, 46, 47],
			[48, 49, 50],
			[51, 52, 53],
			[54, 55, 56],
			[57, 58, 59],
			[60, 61, 62],
			[63, 64, 65],
			[66, 67, 68],
			[69, 70, 71],
			[72, 73, 74],
			[75, 76, 77],
			[78, 79, 80],
			[81, 82, 83],
			[84, 85, 86],
			[87, 88, 89],
			[90, 91, 92],
			[93, 94, 95],
			[96, 97, 98],
			[99, 100, 101],
			[102, 103, 104],
			[105, 106, 107],
			[108, 109, 110],
			[111, 112, 113],
			[114, 115, 116],
			[117, 118, 119],
			[120, 121, 122],
			[123, 124, 125],
			[126, 127, 128],
			[129, 130, 131],
			[132, 133, 134],
			[135, 136, 137],
			[138, 139, 140],
			[141, 142, 143],
			[144, 145, 146],
			[147, 148, 149],
			[150, 151, 152],
			[153, 154, 155],
			[156, 157, 158],
			[159, 160, 161],
			[162, 163, 164],
			[165, 166, 167],
			[168, 169, 170],
			[171, 172, 173],
			[174, 175, 176],
			[177, 178, 179],
			[180, 181, 182],
			[183, 184, 185],
			[186, 187, 188],
			[189, 190, 191],
			[192, 193, 194],
			[195, 196, 197],
			[198, 199, 200],
			[201, 202, 203],
			[204, 205, 206],
			[207, 208, 209],
			[210, 211, 212],
			[213, 214, 215],
			[216, 217, 218],
			[219, 220, 221],
			[222, 223, 224],
			[225, 226, 227],
			[228, 229, 230],
			[231, 232, 233],
			[234, 235, 236],
			[237, 238, 239],
			[240, 241, 242],
			[243, 244, 245],
			[246, 247, 248],
			[249, 250, 251],
			[252, 253, 254],
			[255, 256, 257],
			[258, 259, 260],
			[261, 262, 263],
			[264, 265, 266],
			[267, 268, 269],
			[270, 271, 272],
			[273, 274, 275],
			[276, 277, 278],
			[279, 280, 281],
			[282, 283, 284],
			[285, 286, 287],
			[288, 289, 290],
			[291, 292, 293],
			[294, 295, 296],
			[297, 298, 299],
			[300, 301, 302],
			[303, 304, 305],
			[306, 307, 308],
			[309, 310, 311],
			[312, 313, 314],
			[315, 316, 317],
			[318, 319, 320],
			[321, 322, 323],
			[324, 325, 326],
			[327, 328, 329],
			[330, 331, 332],
			[333, 334, 335],
			[336, 337, 338],
			[339, 340, 341],
			[342, 343, 344],
			[345, 346, 347],
			[348, 349, 350],
			[351, 352, 353],
			[354, 355, 356],
			[357, 358, 359],
			[360, 361, 362],
			[363, 364, 365],
			[366, 367, 368],
			[369, 370, 371],
			[372, 373, 374],
			[375, 376, 377],
			[378, 379, 380],
			[381, 382, 383],
			[384, 385, 386],
			[387, 388, 389],
			[390, 391, 392],
			[393, 394, 395],
			[396, 397, 398],
			[399, 400, 401],
			[402, 403, 404],
			[405, 406, 407],
			[408, 409, 410],
			[411, 412, 413],
			[414, 415, 416],
			[417, 418, 419],
			[420, 421, 422],
			[423, 424, 425],
			[426, 427, 428],
			[429, 430, 431],
			[432, 433, 434],
			[435, 436, 437],
			[438, 439, 440],
			[441, 442, 443],
			[444, 445, 446],
			[447, 448, 449],
			[450, 451, 452],
			[453, 454, 455],
			[456, 457, 458],
			[459, 460, 461],
			[462, 463, 464],
			[465, 466, 467],
			[468, 469, 470],
			[471, 472, 473],
			[474, 475, 476],
			[477, 478, 479],
			[480, 481, 482],
			[483, 484, 485],
			[486, 487, 488],
			[489, 490, 491],
			[492, 493, 494],
			[495, 496, 497],
			[498, 499, 500],
			[501, 502, 503],
			[504, 505, 506],
			[507, 508, 509],
			[510, 511, 512],
			[513, 514, 515],
			[516, 517, 518],
			[519, 520, 521],
			[522, 523, 524],
			[525, 526, 527],
			[528, 529, 530],
			[531, 532, 533],
			[534, 535, 536],
			[537, 538, 539],
			[540, 541, 542],
			[543, 544, 545],
			[546, 547, 548],
			[549, 550, 551],
			[552, 553, 554],
			[555, 556, 557],
			[558, 559, 560],
			[561, 562, 563],
			[564, 565, 566],
			[567, 568, 569],
			[570, 571, 572],
			[573, 574, 575],
			[576, 577, 578],
			[579, 580, 581],
			[582, 583, 584],
			[585, 586, 587],
			[588, 589, 590],
			[591, 592, 593],
			[594, 595, 596],
			[597, 598, 599],
			[600, 601, 602],
			[603, 604, 605],
			[606, 607, 608],
			[609, 610, 611],
			[612, 613, 614],
			[615, 616, 617],
			[618, 619, 620],
			[621, 622, 623],
			[624, 625, 626],
			[627, 628, 629],
			[630, 631, 632],
			[633, 634, 635],
			[636, 637, 638],
			[639, 640, 641],
			[642, 643, 644],
			[645, 646, 647],
			[648, 649, 650],
			[651, 652, 653],
			[654, 655, 656],
			[657, 658, 659]
		]
	);
}


invaders_v2_1();
